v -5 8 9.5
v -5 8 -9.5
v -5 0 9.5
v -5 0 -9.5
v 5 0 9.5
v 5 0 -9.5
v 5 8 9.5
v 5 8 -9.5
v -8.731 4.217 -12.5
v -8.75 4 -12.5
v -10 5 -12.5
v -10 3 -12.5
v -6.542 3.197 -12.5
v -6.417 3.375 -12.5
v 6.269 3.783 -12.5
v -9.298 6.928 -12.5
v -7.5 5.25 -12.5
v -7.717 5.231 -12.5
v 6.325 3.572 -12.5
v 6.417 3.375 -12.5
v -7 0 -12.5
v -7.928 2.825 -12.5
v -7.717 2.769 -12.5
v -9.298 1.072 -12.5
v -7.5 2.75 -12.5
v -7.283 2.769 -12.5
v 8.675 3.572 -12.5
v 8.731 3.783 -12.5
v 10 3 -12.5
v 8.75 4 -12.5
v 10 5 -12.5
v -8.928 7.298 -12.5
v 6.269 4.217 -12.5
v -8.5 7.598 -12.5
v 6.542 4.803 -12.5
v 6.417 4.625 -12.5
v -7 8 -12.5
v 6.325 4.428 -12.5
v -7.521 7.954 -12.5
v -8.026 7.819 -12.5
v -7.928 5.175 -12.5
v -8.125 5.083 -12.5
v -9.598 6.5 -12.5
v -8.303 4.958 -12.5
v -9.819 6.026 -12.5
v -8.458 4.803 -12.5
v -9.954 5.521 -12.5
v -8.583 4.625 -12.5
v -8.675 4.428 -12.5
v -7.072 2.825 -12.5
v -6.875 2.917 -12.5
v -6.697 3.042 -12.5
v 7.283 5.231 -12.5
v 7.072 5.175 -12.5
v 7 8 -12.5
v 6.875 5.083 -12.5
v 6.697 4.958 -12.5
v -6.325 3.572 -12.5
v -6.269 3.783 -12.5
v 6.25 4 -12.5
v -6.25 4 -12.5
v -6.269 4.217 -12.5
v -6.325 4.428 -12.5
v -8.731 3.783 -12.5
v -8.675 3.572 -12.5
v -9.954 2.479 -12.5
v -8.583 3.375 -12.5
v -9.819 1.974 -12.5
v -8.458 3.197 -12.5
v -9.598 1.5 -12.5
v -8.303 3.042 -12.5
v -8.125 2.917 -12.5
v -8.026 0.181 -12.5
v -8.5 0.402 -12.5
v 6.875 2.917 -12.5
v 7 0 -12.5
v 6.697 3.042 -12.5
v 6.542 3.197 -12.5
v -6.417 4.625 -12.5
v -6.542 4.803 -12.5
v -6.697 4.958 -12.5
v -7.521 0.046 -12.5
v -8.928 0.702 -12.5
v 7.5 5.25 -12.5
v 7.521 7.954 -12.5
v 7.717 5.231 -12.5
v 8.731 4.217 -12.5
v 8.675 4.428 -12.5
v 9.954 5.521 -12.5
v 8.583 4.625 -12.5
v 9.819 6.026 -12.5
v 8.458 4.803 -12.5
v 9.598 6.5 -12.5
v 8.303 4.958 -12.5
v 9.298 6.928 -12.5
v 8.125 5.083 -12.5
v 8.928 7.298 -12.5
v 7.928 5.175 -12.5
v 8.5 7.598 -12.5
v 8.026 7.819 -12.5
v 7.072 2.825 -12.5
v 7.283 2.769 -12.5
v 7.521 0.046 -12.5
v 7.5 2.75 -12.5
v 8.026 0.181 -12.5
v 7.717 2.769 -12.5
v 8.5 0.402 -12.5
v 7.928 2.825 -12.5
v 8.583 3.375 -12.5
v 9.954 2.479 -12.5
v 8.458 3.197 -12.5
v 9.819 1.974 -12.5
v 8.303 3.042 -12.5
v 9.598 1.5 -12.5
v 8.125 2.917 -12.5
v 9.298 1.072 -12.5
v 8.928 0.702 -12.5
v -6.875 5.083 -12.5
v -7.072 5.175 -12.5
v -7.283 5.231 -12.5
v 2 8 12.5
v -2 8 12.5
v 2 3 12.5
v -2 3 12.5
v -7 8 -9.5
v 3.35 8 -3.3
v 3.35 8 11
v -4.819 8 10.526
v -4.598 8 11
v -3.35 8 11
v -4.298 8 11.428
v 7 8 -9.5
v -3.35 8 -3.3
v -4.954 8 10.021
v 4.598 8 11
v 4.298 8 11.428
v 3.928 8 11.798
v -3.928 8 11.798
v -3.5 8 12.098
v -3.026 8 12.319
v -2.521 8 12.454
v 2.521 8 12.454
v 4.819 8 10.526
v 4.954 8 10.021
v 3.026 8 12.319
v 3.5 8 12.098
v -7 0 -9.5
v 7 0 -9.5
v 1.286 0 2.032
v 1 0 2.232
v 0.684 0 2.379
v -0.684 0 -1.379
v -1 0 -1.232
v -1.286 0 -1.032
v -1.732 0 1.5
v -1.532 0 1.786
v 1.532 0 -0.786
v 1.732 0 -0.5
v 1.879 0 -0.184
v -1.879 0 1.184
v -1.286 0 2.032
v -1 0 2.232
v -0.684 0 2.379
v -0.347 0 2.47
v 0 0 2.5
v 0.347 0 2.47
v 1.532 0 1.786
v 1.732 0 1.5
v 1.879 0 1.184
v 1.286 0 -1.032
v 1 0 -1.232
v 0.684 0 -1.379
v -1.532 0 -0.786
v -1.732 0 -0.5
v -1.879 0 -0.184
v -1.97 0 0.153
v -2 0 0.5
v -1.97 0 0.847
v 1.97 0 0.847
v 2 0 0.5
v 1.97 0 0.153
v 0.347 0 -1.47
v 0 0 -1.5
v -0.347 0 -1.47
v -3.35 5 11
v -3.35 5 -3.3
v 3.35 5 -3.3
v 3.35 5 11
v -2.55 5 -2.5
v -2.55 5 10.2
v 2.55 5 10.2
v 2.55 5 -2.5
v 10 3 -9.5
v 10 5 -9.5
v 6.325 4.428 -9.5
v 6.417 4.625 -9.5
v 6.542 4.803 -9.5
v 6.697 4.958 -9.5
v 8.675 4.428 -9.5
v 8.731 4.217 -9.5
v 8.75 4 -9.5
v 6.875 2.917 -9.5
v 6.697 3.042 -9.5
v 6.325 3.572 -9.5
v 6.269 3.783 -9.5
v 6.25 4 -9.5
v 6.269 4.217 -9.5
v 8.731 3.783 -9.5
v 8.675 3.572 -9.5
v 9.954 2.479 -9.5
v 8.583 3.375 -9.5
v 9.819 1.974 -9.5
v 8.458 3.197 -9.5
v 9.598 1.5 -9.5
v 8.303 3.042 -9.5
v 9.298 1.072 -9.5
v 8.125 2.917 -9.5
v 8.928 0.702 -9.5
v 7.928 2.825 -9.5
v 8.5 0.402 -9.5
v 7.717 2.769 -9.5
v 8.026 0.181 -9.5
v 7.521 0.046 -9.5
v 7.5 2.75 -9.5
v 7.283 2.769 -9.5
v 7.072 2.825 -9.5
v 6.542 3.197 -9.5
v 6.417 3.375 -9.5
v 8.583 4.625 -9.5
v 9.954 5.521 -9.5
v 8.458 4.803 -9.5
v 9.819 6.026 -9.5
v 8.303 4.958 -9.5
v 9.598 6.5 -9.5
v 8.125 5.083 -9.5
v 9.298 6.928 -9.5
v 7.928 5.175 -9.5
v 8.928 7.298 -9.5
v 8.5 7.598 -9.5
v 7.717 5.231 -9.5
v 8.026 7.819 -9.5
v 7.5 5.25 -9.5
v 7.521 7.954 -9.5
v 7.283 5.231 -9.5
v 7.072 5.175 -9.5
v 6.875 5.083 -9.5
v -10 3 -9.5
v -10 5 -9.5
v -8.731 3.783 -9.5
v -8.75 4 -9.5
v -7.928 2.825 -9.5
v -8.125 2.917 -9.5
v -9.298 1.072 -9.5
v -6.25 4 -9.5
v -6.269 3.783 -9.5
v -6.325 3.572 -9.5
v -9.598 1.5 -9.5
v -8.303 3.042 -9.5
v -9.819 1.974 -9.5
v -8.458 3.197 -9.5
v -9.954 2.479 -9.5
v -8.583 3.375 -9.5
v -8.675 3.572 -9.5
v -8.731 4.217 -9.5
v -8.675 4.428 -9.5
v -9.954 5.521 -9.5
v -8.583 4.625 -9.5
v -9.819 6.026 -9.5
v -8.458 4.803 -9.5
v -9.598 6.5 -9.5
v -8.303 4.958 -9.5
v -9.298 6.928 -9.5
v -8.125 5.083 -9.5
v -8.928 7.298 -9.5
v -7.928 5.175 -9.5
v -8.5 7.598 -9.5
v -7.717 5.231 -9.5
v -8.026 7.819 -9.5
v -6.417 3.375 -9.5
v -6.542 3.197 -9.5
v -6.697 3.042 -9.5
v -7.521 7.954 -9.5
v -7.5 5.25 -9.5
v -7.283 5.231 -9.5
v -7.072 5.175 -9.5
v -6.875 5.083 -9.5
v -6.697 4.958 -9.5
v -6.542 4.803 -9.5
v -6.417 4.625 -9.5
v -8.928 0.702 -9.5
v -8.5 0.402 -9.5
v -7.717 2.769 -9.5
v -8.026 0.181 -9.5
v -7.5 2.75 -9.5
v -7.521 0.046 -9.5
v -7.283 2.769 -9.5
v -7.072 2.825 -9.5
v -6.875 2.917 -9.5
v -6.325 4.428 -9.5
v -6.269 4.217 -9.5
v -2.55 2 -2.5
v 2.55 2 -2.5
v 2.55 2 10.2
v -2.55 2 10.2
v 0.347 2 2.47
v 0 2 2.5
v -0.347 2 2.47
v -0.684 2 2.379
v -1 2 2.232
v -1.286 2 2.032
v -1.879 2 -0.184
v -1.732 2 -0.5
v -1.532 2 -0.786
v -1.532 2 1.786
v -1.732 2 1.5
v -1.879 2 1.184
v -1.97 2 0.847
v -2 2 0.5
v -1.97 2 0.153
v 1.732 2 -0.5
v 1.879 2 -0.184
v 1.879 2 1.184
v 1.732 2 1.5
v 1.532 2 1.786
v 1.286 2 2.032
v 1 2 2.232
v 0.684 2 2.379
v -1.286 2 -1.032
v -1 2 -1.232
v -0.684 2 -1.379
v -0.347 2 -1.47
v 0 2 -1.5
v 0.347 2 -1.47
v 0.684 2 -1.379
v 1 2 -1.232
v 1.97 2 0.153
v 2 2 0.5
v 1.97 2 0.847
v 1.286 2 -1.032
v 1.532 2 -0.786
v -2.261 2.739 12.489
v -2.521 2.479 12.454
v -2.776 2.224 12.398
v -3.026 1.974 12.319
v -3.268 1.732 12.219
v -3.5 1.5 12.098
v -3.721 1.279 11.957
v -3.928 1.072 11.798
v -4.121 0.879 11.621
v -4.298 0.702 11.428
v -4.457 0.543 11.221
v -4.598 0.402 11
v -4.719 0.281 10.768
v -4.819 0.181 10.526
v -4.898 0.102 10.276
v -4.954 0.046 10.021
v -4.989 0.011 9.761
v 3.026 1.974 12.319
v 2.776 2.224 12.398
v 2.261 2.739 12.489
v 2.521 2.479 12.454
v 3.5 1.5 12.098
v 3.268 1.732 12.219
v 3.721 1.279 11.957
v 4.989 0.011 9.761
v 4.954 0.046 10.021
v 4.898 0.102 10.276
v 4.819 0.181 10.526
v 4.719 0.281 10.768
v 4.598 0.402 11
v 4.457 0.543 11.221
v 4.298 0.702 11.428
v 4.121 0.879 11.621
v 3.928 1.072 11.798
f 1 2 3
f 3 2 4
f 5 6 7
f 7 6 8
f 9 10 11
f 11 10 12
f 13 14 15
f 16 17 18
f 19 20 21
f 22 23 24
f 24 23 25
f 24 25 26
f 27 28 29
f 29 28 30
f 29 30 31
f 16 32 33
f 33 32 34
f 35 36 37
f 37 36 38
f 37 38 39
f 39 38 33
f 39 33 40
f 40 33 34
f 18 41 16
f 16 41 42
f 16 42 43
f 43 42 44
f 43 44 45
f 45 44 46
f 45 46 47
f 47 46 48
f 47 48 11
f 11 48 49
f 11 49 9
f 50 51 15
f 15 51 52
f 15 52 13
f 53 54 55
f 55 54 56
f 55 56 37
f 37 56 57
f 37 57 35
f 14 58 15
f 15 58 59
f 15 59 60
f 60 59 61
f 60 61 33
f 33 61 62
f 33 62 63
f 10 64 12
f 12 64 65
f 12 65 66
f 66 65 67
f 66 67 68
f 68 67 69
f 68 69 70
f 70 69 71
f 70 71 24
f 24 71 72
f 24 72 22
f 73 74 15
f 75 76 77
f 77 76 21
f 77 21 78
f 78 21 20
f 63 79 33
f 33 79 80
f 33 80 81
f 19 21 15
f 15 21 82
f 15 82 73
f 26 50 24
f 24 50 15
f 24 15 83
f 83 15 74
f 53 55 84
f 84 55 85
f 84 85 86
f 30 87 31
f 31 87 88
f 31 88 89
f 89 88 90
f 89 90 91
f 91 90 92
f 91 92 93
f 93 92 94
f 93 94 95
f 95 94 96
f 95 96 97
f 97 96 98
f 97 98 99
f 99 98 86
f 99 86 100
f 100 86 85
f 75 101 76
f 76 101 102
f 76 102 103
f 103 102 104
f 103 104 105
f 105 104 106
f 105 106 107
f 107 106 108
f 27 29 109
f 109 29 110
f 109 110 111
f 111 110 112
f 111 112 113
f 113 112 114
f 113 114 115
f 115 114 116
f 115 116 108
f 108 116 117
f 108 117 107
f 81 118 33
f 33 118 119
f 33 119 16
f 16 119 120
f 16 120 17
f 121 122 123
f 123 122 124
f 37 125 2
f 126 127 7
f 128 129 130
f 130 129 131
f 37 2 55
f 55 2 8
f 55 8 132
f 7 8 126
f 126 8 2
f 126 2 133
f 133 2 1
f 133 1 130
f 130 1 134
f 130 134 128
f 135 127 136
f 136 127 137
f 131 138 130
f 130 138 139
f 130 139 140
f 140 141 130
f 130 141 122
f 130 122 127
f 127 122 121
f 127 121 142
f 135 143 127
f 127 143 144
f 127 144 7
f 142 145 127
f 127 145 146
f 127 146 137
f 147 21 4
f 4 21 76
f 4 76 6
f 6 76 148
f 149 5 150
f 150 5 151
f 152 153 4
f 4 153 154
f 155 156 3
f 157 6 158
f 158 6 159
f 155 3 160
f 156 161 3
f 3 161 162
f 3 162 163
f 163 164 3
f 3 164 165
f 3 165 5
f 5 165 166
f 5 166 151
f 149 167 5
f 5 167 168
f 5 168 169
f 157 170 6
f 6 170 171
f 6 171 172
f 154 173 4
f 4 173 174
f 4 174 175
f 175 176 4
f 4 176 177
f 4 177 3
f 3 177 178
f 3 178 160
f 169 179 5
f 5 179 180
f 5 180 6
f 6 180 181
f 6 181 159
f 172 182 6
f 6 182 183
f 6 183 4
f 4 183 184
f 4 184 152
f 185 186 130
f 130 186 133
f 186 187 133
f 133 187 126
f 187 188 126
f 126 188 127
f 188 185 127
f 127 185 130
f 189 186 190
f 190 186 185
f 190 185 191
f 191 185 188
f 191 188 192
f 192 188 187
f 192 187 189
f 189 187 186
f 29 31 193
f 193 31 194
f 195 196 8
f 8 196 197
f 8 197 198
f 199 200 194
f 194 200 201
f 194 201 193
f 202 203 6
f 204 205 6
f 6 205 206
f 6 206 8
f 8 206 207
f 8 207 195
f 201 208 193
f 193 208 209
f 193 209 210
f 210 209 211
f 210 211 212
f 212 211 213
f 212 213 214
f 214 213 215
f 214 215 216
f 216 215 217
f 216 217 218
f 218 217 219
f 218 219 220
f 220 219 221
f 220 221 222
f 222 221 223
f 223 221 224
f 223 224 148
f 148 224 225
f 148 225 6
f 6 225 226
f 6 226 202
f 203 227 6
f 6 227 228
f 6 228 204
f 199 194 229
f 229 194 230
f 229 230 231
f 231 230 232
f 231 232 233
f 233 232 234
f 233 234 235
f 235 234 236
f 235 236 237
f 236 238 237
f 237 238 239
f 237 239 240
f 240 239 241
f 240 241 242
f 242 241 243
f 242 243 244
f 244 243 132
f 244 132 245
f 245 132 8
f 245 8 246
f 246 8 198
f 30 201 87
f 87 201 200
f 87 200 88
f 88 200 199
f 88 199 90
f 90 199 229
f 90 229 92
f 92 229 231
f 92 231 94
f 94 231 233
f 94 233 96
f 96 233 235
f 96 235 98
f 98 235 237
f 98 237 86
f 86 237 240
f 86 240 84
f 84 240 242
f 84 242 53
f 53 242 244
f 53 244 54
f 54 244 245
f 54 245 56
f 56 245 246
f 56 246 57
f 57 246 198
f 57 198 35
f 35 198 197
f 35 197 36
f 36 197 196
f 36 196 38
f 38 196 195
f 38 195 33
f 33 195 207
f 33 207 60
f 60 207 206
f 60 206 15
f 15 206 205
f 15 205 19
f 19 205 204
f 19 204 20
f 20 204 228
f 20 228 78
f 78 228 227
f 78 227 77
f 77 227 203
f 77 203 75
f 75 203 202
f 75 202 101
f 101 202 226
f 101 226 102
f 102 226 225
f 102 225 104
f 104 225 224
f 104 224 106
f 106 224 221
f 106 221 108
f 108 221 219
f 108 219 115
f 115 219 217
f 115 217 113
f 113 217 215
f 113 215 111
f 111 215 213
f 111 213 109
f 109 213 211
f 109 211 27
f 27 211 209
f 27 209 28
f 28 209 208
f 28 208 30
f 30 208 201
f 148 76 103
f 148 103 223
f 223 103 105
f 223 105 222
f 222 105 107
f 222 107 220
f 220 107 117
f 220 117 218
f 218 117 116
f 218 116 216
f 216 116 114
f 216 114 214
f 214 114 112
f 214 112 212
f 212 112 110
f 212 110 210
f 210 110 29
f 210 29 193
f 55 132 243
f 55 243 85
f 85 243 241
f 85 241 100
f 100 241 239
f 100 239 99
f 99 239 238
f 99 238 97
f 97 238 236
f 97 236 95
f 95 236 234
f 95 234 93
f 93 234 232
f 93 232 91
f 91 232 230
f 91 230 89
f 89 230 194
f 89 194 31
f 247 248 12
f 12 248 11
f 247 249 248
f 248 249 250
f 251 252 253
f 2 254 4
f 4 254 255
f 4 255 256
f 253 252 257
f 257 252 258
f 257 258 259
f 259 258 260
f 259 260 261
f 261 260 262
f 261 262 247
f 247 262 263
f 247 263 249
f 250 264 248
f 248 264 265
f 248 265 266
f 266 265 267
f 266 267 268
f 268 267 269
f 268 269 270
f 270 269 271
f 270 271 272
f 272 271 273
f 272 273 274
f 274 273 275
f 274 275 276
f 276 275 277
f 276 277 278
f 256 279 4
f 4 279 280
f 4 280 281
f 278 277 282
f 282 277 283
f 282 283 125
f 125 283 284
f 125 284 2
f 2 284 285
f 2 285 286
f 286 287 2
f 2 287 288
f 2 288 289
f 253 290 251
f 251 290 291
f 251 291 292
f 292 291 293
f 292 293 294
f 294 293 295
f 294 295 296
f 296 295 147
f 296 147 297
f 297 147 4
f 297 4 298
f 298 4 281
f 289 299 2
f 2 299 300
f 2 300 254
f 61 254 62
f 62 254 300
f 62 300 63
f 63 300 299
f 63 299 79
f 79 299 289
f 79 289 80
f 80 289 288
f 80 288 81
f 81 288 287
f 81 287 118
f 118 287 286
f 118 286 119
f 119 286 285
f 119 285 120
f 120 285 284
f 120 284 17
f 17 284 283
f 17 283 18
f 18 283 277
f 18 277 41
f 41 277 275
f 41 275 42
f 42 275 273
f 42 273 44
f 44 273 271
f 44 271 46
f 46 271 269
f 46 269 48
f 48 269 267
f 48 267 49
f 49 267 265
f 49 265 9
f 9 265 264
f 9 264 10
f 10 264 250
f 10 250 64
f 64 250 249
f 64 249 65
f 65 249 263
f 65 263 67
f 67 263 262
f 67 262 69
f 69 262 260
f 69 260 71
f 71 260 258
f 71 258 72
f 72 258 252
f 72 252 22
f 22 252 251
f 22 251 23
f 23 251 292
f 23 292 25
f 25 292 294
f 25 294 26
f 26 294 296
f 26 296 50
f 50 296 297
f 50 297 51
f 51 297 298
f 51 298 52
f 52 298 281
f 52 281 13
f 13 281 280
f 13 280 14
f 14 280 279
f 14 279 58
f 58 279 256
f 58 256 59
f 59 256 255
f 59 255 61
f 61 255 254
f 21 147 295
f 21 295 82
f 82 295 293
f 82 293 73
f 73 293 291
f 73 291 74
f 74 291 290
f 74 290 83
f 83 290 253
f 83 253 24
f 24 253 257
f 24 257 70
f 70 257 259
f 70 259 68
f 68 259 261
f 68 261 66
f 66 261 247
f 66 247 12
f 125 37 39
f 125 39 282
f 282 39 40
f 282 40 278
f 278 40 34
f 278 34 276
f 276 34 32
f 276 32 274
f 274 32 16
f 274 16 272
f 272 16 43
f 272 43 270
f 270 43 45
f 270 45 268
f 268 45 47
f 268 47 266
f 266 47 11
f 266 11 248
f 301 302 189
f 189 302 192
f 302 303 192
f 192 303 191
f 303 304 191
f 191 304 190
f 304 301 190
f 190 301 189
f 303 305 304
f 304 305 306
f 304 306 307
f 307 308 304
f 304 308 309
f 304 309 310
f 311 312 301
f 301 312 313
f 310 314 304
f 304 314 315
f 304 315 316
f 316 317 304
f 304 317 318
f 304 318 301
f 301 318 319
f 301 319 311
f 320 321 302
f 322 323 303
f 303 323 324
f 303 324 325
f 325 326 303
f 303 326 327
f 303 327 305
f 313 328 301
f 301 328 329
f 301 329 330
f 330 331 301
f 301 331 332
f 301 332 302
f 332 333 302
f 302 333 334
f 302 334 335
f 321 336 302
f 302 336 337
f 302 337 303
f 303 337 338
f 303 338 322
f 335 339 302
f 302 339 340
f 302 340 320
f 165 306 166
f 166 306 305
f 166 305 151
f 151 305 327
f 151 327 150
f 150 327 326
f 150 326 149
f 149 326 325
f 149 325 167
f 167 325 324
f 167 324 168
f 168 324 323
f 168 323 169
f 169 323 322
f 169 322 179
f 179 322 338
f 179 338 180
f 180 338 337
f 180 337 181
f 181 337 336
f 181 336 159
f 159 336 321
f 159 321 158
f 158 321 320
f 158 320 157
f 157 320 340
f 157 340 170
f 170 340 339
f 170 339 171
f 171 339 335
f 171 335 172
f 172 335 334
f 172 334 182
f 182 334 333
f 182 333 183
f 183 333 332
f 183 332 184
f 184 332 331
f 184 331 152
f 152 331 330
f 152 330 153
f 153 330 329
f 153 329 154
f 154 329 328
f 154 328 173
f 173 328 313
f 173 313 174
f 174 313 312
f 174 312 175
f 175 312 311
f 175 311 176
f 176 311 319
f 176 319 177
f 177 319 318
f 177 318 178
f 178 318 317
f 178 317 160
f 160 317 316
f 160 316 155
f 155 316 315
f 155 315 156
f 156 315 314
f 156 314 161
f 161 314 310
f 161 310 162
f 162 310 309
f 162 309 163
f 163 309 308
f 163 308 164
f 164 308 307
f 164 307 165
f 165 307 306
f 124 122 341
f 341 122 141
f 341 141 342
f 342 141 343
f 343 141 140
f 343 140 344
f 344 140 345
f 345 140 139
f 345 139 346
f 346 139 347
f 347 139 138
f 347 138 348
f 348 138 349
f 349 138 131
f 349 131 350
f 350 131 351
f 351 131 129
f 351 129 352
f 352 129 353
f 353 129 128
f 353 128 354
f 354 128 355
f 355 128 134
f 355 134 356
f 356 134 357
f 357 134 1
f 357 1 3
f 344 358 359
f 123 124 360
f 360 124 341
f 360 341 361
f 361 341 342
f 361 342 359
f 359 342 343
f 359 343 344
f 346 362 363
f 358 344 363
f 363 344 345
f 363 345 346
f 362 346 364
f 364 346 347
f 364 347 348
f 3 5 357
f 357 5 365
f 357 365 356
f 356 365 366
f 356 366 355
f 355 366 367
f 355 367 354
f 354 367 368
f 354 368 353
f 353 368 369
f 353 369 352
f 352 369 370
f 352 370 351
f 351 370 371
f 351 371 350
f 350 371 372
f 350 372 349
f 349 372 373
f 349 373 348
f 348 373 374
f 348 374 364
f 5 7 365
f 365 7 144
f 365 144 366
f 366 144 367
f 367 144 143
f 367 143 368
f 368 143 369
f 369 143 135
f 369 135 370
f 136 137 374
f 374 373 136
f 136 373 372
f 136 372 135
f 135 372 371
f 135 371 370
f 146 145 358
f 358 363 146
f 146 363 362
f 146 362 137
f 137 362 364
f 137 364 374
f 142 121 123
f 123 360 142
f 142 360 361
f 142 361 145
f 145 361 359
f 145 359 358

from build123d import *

# Parameters (mm, degrees)
ESBO_O1_W                = 10
ESBO_O1_H                = 25
RESSALTO_EXTRUS_O1_DEPTH = 8
ESBO_O2_W                = 6.7
ESBO_O2_H                = 14.3
CORTE_EXTRUS_O1_DEPTH    = 3
ESBO_O3_W                = 5
ESBO_O3_H                = 8
RESSALTO_EXTRUS_O2_DEPTH = 3
ESBO_O5_R                = 1.25
CORTE_EXTRUS_O2_DEPTH    = 26.455844123
FILETE1_R                = 3
FILETE1_OF_ESPELHAR3_R   = 3
ESBO_O6_W                = 5.1
ESBO_O6_H                = 12.7
CORTE_EXTRUS_O3_DEPTH    = 3
ESBO_O7_R                = 2
CORTE_EXTRUS_O4_DEPTH    = 18.095320997
FILETE2_R                = 3


with BuildPart() as part:
    # Esboço1 → Ressalto-extrusão1 (new body)
    with BuildSketch(Plane(origin=(0, 0, 0), x_dir=(1, 0, 0), z_dir=(0, 1, 0))):
        Rectangle(ESBO_O1_W, ESBO_O1_H)
    extrude(amount=RESSALTO_EXTRUS_O1_DEPTH)

    # Esboço2 → Corte-extrusão1 (cut)
    with BuildSketch(Plane(origin=(0, 8, 0), x_dir=(1, 0, 0), z_dir=(0, 1, 0))):
        with Locations((0, -3.85)):
            Rectangle(ESBO_O2_W, ESBO_O2_H)
    extrude(amount=-CORTE_EXTRUS_O1_DEPTH, mode=Mode.SUBTRACT)

    # Esboço3 → Ressalto-extrusão2 (add)
    with BuildSketch(Plane(origin=(0, 0, -12.5), x_dir=(-1, 0, 0), z_dir=(0, 0, -1))):
        with Locations((-7.5, 4)):
            Rectangle(ESBO_O3_W, ESBO_O3_H)
    ressalto_extrus_o2 = extrude(amount=-RESSALTO_EXTRUS_O2_DEPTH)

    # Esboço5 → Corte-extrusão2 (cut, through all)
    with BuildSketch(Plane.XY.offset(-9.5)):
        with Locations((7.5, 4)):
            Circle(ESBO_O5_R)
    corte_extrus_o2 = extrude(amount=-CORTE_EXTRUS_O2_DEPTH, mode=Mode.SUBTRACT)

    # Filete1
    filete1_edges = [part.edges().sort_by_distance(p)[0] for p in [
        (10, 0, -11),
        (10, 8, -11),
    ]]
    fillet(filete1_edges, radius=FILETE1_R)

    # Espelhar3: Ressalto-extrusão2, Corte-extrusão2 across plane
    add(ressalto_extrus_o2.mirror(Plane(origin=(0, 0, 0), x_dir=(0, 0, 1), z_dir=(1, 0, 0))))
    add(corte_extrus_o2.mirror(Plane(origin=(0, 0, 0), x_dir=(0, 0, 1), z_dir=(1, 0, 0))), mode=Mode.SUBTRACT)

    # Filete1 of Espelhar3
    filete1_of_espelhar3_edges = [part.edges().sort_by_distance(p)[0] for p in [
        (-10, 0, -11),
        (-10, 8, -11),
    ]]
    fillet(filete1_of_espelhar3_edges, radius=FILETE1_OF_ESPELHAR3_R)

    # Esboço6 → Corte-extrusão3 (cut)
    with BuildSketch(Plane(origin=(0, 5, 0), x_dir=(1, 0, 0), z_dir=(0, 1, 0))):
        with Locations((0, -3.85)):
            Rectangle(ESBO_O6_W, ESBO_O6_H)
    extrude(amount=-CORTE_EXTRUS_O3_DEPTH, mode=Mode.SUBTRACT)

    # Esboço7 → Corte-extrusão4 (cut, through all)
    with BuildSketch(Plane(origin=(0, 2, 0), x_dir=(1, 0, 0), z_dir=(0, 1, 0))):
        with Locations(Location((0, -0.5, 0), (0, 0, 270))):
            Circle(ESBO_O7_R)
    extrude(amount=-CORTE_EXTRUS_O4_DEPTH, mode=Mode.SUBTRACT)

    # Filete2
    filete2_edges = [part.edges().sort_by_distance(p)[0] for p in [
        (0, 0, 12.5),
        (5, 4, 12.5),
        (-5, 4, 12.5),
    ]]
    fillet(filete2_edges, radius=FILETE2_R)


solid = part.part
